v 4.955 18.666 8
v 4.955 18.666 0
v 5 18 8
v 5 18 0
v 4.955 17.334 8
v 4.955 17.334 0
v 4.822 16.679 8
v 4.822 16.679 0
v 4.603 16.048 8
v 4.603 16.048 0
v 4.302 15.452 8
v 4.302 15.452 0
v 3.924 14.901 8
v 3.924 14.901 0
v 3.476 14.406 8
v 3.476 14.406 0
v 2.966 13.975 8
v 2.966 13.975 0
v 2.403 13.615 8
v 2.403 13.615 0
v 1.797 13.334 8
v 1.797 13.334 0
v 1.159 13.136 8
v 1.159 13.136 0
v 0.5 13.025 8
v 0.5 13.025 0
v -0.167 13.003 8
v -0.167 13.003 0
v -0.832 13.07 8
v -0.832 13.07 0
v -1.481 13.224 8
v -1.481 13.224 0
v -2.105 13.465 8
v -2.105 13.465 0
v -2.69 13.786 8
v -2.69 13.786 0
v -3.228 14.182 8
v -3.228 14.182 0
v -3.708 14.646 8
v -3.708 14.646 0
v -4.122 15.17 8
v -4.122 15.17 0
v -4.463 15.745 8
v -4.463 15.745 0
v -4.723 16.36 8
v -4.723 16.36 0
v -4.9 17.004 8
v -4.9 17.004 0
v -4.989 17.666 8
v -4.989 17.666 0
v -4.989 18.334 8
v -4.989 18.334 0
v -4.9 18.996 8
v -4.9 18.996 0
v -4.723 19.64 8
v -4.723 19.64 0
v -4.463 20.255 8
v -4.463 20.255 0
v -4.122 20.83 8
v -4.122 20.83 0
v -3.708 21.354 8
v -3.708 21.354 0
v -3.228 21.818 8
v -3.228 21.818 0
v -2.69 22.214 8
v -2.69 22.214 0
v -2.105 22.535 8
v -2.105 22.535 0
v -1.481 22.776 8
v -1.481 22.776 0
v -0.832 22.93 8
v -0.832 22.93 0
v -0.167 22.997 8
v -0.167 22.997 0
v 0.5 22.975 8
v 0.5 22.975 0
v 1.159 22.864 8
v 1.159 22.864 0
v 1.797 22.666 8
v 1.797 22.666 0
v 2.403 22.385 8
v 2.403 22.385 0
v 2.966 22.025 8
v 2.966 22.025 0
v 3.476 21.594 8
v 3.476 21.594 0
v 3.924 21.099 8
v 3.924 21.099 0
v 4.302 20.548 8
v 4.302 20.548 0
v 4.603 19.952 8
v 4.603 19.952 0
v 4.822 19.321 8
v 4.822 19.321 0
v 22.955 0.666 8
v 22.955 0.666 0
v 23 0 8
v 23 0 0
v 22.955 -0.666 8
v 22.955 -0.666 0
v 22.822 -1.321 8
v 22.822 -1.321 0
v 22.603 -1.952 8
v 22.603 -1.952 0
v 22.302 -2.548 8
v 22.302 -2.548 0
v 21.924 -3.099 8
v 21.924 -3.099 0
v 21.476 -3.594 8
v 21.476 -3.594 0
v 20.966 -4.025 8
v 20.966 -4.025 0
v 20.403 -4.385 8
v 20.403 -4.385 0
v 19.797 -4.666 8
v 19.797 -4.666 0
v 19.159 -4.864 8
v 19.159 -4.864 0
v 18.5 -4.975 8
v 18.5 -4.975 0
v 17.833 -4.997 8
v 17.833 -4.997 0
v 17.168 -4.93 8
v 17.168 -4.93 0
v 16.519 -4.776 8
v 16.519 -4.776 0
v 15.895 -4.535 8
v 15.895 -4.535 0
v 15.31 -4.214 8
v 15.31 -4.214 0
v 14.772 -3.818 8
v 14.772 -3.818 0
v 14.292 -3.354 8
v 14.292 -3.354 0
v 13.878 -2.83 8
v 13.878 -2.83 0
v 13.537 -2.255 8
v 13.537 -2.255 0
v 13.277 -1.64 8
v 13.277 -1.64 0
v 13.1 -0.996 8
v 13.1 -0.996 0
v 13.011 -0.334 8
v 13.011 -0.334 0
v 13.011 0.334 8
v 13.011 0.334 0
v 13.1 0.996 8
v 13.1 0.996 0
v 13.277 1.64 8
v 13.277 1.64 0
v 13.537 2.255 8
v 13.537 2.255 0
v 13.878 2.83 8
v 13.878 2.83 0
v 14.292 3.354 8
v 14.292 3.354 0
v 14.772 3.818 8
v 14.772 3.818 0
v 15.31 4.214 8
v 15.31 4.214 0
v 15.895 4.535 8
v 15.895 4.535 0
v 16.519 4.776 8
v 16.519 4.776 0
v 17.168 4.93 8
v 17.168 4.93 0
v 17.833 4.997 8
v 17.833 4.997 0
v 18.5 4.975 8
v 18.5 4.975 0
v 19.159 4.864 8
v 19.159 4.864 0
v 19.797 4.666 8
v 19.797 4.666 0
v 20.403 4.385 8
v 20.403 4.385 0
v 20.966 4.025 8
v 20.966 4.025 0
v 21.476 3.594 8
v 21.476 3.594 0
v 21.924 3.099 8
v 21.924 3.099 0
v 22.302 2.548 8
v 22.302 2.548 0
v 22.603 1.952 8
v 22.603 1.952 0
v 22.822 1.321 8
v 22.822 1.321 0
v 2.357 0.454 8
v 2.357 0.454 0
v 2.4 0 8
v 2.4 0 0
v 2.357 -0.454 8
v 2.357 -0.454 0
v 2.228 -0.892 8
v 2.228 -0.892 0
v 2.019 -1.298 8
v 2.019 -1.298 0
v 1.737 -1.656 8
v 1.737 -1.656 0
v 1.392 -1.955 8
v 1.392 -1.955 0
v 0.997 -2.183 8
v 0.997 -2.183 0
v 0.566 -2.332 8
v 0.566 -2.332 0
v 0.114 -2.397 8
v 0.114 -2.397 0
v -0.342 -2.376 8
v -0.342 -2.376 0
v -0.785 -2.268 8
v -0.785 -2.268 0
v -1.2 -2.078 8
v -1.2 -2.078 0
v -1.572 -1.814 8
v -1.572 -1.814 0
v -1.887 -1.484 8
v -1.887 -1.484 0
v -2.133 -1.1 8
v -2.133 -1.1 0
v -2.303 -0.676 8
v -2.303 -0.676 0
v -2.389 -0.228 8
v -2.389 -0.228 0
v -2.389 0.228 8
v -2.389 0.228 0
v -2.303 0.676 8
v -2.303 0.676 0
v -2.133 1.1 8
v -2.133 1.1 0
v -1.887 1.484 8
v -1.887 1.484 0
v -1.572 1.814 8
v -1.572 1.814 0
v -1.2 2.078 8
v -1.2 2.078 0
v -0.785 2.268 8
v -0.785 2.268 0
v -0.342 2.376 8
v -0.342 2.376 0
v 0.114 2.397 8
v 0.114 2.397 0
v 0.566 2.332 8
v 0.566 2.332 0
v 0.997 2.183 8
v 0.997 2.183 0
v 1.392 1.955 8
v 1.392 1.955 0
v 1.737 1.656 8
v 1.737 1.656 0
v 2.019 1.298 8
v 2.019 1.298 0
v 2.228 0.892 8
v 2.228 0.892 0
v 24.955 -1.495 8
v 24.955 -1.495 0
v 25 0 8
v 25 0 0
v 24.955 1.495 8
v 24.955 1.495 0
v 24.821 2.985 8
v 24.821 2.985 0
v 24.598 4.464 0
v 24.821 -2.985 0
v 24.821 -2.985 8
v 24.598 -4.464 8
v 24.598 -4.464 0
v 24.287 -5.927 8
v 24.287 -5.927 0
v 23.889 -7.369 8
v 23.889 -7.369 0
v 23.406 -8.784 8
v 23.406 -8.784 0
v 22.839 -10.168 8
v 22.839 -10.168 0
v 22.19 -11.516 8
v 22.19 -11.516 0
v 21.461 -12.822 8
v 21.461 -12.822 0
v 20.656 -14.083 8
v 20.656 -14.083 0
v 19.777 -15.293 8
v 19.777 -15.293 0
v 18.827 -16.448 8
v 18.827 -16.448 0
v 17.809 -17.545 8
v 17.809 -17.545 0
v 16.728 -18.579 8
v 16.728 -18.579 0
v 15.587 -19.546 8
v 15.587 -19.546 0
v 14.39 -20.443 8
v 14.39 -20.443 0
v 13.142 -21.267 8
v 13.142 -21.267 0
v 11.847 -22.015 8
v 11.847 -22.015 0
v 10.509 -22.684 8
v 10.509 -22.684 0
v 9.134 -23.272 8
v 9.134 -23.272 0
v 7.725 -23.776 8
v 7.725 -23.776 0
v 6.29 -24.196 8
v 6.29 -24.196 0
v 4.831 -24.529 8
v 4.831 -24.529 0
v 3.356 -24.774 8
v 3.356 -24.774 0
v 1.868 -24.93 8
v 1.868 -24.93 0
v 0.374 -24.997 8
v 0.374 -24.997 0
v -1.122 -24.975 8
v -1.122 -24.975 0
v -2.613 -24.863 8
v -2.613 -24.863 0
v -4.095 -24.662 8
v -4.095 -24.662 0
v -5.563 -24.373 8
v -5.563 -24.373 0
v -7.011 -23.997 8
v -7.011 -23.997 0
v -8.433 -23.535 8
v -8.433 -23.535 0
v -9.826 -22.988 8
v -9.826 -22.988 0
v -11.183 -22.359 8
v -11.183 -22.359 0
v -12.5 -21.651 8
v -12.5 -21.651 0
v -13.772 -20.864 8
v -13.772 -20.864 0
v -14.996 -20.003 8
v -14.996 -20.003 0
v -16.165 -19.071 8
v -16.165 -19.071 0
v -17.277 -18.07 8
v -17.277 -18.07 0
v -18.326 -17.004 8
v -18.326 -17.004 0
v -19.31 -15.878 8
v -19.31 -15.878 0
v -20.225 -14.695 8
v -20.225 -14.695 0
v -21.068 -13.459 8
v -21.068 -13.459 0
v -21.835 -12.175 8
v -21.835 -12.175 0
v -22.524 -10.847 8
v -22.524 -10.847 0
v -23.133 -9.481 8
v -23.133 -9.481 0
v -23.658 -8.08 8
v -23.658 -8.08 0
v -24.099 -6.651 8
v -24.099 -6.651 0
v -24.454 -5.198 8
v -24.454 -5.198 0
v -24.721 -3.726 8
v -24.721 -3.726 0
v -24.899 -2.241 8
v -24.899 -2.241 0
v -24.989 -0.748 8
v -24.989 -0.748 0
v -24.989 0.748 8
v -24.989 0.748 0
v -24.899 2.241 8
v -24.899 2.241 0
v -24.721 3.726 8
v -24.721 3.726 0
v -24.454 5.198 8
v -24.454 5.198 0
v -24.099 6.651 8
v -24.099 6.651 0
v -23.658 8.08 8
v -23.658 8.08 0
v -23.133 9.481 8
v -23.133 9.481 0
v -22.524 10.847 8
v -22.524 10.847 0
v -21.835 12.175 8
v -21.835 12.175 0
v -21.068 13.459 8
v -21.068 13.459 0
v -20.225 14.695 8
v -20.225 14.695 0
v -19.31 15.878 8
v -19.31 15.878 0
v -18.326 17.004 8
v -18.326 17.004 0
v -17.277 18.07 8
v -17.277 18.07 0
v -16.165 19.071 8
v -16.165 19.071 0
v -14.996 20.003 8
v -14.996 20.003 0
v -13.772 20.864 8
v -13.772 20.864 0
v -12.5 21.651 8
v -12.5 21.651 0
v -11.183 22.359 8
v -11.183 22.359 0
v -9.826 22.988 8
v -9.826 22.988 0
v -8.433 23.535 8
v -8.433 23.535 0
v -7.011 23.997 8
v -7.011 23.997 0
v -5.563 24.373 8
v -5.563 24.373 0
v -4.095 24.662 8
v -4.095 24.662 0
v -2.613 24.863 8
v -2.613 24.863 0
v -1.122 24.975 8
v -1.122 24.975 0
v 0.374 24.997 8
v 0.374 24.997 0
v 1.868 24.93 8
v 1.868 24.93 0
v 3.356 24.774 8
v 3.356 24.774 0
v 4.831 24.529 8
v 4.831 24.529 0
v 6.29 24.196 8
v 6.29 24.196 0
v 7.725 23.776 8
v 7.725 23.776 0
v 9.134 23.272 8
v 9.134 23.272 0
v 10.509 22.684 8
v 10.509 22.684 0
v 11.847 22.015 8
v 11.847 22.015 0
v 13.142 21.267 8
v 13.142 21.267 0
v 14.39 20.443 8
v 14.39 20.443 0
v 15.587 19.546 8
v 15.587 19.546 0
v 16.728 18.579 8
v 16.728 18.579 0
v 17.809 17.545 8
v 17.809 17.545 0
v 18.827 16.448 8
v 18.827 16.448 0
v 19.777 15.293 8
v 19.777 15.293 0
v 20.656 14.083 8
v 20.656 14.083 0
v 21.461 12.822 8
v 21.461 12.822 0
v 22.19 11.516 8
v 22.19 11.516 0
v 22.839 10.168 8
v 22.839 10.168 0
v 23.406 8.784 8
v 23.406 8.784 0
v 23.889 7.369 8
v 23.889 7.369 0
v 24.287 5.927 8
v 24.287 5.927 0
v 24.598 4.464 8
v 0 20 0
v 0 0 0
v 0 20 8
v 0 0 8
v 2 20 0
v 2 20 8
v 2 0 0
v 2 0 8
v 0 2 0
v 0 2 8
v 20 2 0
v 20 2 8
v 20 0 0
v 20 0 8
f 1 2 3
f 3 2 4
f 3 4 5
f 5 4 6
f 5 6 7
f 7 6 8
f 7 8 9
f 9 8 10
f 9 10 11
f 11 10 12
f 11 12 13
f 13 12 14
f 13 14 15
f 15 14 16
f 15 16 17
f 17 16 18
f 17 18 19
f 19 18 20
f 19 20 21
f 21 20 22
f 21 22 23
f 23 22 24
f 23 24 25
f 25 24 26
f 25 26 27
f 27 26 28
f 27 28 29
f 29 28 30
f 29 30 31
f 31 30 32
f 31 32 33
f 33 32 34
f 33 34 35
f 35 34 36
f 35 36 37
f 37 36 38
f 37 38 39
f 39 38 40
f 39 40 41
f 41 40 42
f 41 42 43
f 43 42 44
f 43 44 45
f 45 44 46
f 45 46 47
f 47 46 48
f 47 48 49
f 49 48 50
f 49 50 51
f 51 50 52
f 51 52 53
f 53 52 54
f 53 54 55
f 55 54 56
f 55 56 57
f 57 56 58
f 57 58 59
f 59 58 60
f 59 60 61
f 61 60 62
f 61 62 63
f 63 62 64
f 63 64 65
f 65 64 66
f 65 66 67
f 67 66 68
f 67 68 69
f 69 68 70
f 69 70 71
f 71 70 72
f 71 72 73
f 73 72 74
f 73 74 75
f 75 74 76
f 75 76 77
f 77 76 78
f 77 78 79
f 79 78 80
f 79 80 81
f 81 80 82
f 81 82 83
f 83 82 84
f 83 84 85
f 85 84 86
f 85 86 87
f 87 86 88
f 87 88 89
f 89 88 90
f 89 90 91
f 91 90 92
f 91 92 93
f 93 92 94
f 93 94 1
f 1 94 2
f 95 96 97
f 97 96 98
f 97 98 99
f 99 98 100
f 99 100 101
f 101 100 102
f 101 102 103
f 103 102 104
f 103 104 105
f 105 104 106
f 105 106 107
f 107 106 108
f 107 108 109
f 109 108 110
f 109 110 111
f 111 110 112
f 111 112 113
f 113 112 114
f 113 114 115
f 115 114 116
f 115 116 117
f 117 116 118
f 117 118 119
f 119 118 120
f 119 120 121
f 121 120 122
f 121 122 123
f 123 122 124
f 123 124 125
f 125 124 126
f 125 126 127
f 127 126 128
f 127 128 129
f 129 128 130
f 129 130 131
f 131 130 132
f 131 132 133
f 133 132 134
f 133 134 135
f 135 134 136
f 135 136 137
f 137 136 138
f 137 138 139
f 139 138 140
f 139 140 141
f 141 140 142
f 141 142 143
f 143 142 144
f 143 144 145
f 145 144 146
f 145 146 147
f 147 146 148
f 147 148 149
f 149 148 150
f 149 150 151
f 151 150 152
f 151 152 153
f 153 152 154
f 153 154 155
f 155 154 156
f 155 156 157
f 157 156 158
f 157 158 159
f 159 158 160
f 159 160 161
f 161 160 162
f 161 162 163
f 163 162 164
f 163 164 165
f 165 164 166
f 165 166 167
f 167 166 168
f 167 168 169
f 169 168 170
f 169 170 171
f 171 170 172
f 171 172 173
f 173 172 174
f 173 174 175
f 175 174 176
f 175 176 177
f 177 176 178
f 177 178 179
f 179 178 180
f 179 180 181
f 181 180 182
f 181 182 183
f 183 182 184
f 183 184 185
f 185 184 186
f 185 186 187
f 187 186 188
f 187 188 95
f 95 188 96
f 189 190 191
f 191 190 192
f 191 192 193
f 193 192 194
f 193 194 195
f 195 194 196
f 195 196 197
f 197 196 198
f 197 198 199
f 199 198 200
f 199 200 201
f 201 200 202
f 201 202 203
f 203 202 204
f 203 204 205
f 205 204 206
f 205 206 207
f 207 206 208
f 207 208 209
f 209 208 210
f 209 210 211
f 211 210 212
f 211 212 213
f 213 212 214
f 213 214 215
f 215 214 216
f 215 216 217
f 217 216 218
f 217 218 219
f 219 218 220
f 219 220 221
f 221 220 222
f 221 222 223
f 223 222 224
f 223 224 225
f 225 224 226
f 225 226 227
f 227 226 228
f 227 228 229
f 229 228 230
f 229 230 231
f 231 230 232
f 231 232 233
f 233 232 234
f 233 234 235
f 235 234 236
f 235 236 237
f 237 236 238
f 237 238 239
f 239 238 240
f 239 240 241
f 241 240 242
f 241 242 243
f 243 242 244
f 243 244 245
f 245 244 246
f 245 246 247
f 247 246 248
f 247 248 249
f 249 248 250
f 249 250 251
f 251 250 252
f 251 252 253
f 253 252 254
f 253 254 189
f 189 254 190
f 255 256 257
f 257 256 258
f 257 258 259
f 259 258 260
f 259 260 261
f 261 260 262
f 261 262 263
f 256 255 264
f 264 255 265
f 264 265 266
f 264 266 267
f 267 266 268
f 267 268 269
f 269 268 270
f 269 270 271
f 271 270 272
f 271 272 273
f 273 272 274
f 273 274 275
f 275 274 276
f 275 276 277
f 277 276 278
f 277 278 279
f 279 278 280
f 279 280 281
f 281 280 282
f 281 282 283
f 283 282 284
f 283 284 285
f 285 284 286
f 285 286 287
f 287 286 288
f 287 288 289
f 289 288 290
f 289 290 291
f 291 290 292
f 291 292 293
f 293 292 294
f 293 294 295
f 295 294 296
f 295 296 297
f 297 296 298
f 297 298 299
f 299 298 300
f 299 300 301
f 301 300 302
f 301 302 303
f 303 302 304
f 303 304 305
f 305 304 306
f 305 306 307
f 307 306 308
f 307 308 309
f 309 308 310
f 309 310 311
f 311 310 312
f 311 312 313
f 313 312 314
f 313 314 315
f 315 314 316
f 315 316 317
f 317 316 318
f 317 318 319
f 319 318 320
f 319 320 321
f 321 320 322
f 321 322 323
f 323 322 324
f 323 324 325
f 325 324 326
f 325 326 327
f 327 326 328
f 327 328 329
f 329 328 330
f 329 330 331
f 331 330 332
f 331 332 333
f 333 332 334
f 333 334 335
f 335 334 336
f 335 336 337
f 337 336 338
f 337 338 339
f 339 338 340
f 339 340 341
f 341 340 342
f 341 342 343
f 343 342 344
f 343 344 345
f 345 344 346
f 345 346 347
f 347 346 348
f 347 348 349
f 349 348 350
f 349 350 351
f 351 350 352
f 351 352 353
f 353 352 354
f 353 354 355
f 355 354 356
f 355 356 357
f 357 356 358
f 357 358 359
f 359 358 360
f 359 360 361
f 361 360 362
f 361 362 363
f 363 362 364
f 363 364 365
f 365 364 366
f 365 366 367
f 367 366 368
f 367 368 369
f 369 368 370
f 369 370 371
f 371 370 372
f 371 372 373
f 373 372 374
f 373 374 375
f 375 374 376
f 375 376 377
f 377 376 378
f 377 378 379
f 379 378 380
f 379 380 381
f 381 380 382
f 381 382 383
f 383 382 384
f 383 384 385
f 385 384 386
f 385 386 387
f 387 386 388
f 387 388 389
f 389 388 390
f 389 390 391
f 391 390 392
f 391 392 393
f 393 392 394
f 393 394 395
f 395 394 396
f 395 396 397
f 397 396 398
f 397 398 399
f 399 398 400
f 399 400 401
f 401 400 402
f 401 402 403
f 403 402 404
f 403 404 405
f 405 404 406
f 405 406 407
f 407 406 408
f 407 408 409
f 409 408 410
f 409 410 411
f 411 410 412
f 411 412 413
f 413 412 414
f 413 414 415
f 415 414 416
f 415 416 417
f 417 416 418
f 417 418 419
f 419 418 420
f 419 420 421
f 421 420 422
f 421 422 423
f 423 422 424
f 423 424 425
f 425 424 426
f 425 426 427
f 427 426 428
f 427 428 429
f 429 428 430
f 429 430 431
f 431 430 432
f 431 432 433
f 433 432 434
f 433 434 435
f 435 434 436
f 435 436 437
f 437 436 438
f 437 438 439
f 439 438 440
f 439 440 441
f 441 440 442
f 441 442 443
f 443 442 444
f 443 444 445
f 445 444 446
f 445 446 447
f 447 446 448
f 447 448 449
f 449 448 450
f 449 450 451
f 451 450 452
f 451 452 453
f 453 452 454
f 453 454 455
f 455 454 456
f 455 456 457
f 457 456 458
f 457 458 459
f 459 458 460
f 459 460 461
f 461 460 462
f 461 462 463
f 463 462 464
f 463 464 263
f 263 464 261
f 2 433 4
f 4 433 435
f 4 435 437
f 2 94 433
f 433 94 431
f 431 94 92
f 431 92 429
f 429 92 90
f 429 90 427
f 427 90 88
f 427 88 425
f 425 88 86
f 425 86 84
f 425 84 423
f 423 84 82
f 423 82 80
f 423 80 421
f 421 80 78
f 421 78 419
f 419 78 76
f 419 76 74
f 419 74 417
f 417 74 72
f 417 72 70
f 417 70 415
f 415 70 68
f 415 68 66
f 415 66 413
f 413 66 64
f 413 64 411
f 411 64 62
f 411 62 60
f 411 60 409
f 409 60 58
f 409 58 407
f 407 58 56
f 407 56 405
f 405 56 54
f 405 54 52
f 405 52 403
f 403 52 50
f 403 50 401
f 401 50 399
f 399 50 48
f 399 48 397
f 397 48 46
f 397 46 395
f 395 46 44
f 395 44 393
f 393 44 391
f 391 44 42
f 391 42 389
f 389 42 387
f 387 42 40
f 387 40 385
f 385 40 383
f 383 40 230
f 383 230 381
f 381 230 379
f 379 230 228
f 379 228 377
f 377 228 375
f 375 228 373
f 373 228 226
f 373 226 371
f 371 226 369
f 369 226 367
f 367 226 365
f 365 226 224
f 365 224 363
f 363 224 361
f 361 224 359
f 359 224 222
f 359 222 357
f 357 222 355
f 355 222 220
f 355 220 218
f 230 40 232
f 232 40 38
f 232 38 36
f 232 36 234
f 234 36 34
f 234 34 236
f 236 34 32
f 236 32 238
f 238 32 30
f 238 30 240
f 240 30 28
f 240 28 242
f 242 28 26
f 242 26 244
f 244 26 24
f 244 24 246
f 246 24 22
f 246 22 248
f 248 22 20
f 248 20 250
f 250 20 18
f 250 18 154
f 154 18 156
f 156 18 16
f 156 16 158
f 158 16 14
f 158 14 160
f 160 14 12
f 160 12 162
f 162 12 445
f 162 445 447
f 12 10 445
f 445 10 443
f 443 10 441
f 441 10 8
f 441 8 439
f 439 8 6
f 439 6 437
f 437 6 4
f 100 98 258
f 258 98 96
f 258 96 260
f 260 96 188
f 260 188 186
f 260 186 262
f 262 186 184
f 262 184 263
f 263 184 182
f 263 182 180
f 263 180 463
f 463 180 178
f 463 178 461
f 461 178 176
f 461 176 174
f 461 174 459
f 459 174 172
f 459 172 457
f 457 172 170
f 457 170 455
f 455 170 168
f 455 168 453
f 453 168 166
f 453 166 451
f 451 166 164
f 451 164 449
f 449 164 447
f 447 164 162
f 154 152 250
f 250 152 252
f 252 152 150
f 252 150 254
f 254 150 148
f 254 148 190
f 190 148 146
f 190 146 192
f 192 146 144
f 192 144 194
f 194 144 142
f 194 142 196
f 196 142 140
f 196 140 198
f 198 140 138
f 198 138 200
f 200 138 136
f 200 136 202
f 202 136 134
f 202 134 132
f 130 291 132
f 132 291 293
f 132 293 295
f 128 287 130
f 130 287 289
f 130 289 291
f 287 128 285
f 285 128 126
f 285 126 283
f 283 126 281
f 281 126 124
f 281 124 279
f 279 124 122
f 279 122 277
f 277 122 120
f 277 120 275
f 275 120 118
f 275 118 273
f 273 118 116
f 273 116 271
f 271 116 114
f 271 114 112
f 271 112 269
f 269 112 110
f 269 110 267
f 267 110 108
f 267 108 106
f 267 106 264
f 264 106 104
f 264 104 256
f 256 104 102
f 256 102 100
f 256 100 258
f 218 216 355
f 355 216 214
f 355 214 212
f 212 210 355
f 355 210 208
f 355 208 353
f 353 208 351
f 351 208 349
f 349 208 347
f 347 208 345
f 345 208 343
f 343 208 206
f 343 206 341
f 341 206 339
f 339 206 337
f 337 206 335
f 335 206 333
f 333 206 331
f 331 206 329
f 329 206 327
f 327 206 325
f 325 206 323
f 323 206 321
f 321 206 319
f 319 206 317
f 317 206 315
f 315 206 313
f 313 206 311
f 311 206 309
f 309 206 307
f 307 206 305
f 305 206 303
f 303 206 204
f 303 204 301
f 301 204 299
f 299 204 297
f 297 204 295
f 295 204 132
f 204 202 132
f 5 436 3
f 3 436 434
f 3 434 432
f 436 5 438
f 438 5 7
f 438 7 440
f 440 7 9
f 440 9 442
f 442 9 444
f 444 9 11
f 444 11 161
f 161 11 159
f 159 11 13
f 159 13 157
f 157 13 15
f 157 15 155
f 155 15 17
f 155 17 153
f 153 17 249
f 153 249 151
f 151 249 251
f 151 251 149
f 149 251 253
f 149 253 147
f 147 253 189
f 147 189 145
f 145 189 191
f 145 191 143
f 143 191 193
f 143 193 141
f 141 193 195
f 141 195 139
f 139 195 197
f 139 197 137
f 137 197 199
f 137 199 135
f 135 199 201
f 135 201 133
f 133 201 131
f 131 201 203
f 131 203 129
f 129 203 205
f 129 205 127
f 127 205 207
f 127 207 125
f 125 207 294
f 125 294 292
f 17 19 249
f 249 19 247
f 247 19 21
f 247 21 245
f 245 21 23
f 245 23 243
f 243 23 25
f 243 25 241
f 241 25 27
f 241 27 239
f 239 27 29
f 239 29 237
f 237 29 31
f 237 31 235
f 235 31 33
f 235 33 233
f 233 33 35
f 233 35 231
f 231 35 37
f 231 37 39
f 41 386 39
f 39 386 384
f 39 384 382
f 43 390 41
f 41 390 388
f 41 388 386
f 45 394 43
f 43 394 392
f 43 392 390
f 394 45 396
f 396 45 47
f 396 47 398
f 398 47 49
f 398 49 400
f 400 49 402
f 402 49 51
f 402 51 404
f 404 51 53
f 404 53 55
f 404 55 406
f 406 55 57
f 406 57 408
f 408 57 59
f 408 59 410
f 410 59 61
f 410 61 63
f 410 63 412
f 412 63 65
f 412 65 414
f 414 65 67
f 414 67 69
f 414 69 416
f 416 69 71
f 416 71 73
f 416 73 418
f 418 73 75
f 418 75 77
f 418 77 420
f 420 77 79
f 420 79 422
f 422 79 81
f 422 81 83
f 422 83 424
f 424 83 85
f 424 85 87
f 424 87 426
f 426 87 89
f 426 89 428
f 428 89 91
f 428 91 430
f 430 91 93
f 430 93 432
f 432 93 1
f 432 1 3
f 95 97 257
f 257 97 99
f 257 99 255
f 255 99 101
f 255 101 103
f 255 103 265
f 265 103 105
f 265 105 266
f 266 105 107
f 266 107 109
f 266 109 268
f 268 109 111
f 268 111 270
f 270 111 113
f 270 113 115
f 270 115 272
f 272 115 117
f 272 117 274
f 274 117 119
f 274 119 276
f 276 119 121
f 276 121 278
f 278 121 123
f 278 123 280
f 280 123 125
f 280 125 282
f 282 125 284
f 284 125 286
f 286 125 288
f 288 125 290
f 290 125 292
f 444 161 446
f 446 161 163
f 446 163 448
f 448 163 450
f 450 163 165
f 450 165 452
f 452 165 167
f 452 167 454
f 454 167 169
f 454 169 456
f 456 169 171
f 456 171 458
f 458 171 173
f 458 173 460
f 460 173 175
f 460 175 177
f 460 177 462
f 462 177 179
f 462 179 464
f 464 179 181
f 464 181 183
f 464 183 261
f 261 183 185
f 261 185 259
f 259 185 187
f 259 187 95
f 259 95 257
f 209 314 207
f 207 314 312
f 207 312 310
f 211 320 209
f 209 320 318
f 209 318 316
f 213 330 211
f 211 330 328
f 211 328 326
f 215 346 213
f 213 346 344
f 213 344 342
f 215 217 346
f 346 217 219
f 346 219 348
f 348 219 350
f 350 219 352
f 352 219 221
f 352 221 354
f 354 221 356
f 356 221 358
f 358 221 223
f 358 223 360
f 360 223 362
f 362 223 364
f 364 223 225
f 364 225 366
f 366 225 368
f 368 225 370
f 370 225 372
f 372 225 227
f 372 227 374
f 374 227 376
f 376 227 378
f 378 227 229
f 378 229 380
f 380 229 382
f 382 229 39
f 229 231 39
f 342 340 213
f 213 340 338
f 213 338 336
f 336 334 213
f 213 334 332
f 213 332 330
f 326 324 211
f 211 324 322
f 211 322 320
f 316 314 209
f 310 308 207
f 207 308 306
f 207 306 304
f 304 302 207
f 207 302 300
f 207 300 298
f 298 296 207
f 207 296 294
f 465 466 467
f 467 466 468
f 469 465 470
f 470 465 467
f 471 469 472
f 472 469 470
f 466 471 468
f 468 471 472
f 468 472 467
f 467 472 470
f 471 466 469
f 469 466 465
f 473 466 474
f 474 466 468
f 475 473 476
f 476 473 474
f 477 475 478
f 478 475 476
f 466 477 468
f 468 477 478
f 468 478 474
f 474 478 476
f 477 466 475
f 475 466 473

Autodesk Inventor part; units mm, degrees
ref_plane "YZ Plane" through (0, 0, 0) normal (1, 0, 0) x (0, 1, 0)
ref_plane "XZ Plane" through (0, 0, 0) normal (0, 1, 0) x (-1, 0, 0)
ref_plane "XY Plane" through (0, 0, 0) normal (0, 0, 1) x (1, 0, 0)
sketch "Skizze1" plane through (0, 0, 0) normal (0, 0, 1) x (1, 0, 0)
  circle A0 centre (0, 0) radius 25
extrude "Extrusion1" add sketch "Skizze1" along normal blind 8
sketch "Skizze2" plane through (0, 0, 0) normal (0, 0, 1) x (1, 0, 0)
  circle A0 centre (0, 0) radius 2.4
extrude "Extrusion2" cut sketch "Skizze2" along normal blind 9
sketch "Skizze3" plane through (0, 0, 0) normal (0, 0, 1) x (1, 0, 0)
  circle A0 centre (18, 0) radius 5
extrude "Extrusion3" cut sketch "Skizze3" along normal blind 8
sketch "Skizze4" plane through (0, 0, 0) normal (0, 0, 1) x (1, 0, 0)
  circle A0 centre (0, 18) radius 5
extrude "Extrusion4" cut sketch "Skizze4" along normal blind 8
sketch "Skizze5" plane through (0, 0, 0) normal (0, 0, 1) x (1, 0, 0)
  line L0 (0, 0) -> (2, 0)
  line L1 (2, 0) -> (2, 20)
  line L2 (2, 20) -> (0, 20)
  line L3 (0, 20) -> (0, 0)
extrude "Extrusion5" add sketch "Skizze5" along normal blind 8 separate body
sketch "Skizze6" plane through (0, 0, 0) normal (0, 0, 1) x (1, 0, 0)
  line L0 (0, 0) -> (20, 0)
  line L1 (20, 0) -> (20, 2)
  line L2 (20, 2) -> (0, 2)
  line L3 (0, 2) -> (0, 0)
extrude "Extrusion6" add sketch "Skizze6" along normal blind 8 separate body
properties part number "Kupplungsscheibe"
